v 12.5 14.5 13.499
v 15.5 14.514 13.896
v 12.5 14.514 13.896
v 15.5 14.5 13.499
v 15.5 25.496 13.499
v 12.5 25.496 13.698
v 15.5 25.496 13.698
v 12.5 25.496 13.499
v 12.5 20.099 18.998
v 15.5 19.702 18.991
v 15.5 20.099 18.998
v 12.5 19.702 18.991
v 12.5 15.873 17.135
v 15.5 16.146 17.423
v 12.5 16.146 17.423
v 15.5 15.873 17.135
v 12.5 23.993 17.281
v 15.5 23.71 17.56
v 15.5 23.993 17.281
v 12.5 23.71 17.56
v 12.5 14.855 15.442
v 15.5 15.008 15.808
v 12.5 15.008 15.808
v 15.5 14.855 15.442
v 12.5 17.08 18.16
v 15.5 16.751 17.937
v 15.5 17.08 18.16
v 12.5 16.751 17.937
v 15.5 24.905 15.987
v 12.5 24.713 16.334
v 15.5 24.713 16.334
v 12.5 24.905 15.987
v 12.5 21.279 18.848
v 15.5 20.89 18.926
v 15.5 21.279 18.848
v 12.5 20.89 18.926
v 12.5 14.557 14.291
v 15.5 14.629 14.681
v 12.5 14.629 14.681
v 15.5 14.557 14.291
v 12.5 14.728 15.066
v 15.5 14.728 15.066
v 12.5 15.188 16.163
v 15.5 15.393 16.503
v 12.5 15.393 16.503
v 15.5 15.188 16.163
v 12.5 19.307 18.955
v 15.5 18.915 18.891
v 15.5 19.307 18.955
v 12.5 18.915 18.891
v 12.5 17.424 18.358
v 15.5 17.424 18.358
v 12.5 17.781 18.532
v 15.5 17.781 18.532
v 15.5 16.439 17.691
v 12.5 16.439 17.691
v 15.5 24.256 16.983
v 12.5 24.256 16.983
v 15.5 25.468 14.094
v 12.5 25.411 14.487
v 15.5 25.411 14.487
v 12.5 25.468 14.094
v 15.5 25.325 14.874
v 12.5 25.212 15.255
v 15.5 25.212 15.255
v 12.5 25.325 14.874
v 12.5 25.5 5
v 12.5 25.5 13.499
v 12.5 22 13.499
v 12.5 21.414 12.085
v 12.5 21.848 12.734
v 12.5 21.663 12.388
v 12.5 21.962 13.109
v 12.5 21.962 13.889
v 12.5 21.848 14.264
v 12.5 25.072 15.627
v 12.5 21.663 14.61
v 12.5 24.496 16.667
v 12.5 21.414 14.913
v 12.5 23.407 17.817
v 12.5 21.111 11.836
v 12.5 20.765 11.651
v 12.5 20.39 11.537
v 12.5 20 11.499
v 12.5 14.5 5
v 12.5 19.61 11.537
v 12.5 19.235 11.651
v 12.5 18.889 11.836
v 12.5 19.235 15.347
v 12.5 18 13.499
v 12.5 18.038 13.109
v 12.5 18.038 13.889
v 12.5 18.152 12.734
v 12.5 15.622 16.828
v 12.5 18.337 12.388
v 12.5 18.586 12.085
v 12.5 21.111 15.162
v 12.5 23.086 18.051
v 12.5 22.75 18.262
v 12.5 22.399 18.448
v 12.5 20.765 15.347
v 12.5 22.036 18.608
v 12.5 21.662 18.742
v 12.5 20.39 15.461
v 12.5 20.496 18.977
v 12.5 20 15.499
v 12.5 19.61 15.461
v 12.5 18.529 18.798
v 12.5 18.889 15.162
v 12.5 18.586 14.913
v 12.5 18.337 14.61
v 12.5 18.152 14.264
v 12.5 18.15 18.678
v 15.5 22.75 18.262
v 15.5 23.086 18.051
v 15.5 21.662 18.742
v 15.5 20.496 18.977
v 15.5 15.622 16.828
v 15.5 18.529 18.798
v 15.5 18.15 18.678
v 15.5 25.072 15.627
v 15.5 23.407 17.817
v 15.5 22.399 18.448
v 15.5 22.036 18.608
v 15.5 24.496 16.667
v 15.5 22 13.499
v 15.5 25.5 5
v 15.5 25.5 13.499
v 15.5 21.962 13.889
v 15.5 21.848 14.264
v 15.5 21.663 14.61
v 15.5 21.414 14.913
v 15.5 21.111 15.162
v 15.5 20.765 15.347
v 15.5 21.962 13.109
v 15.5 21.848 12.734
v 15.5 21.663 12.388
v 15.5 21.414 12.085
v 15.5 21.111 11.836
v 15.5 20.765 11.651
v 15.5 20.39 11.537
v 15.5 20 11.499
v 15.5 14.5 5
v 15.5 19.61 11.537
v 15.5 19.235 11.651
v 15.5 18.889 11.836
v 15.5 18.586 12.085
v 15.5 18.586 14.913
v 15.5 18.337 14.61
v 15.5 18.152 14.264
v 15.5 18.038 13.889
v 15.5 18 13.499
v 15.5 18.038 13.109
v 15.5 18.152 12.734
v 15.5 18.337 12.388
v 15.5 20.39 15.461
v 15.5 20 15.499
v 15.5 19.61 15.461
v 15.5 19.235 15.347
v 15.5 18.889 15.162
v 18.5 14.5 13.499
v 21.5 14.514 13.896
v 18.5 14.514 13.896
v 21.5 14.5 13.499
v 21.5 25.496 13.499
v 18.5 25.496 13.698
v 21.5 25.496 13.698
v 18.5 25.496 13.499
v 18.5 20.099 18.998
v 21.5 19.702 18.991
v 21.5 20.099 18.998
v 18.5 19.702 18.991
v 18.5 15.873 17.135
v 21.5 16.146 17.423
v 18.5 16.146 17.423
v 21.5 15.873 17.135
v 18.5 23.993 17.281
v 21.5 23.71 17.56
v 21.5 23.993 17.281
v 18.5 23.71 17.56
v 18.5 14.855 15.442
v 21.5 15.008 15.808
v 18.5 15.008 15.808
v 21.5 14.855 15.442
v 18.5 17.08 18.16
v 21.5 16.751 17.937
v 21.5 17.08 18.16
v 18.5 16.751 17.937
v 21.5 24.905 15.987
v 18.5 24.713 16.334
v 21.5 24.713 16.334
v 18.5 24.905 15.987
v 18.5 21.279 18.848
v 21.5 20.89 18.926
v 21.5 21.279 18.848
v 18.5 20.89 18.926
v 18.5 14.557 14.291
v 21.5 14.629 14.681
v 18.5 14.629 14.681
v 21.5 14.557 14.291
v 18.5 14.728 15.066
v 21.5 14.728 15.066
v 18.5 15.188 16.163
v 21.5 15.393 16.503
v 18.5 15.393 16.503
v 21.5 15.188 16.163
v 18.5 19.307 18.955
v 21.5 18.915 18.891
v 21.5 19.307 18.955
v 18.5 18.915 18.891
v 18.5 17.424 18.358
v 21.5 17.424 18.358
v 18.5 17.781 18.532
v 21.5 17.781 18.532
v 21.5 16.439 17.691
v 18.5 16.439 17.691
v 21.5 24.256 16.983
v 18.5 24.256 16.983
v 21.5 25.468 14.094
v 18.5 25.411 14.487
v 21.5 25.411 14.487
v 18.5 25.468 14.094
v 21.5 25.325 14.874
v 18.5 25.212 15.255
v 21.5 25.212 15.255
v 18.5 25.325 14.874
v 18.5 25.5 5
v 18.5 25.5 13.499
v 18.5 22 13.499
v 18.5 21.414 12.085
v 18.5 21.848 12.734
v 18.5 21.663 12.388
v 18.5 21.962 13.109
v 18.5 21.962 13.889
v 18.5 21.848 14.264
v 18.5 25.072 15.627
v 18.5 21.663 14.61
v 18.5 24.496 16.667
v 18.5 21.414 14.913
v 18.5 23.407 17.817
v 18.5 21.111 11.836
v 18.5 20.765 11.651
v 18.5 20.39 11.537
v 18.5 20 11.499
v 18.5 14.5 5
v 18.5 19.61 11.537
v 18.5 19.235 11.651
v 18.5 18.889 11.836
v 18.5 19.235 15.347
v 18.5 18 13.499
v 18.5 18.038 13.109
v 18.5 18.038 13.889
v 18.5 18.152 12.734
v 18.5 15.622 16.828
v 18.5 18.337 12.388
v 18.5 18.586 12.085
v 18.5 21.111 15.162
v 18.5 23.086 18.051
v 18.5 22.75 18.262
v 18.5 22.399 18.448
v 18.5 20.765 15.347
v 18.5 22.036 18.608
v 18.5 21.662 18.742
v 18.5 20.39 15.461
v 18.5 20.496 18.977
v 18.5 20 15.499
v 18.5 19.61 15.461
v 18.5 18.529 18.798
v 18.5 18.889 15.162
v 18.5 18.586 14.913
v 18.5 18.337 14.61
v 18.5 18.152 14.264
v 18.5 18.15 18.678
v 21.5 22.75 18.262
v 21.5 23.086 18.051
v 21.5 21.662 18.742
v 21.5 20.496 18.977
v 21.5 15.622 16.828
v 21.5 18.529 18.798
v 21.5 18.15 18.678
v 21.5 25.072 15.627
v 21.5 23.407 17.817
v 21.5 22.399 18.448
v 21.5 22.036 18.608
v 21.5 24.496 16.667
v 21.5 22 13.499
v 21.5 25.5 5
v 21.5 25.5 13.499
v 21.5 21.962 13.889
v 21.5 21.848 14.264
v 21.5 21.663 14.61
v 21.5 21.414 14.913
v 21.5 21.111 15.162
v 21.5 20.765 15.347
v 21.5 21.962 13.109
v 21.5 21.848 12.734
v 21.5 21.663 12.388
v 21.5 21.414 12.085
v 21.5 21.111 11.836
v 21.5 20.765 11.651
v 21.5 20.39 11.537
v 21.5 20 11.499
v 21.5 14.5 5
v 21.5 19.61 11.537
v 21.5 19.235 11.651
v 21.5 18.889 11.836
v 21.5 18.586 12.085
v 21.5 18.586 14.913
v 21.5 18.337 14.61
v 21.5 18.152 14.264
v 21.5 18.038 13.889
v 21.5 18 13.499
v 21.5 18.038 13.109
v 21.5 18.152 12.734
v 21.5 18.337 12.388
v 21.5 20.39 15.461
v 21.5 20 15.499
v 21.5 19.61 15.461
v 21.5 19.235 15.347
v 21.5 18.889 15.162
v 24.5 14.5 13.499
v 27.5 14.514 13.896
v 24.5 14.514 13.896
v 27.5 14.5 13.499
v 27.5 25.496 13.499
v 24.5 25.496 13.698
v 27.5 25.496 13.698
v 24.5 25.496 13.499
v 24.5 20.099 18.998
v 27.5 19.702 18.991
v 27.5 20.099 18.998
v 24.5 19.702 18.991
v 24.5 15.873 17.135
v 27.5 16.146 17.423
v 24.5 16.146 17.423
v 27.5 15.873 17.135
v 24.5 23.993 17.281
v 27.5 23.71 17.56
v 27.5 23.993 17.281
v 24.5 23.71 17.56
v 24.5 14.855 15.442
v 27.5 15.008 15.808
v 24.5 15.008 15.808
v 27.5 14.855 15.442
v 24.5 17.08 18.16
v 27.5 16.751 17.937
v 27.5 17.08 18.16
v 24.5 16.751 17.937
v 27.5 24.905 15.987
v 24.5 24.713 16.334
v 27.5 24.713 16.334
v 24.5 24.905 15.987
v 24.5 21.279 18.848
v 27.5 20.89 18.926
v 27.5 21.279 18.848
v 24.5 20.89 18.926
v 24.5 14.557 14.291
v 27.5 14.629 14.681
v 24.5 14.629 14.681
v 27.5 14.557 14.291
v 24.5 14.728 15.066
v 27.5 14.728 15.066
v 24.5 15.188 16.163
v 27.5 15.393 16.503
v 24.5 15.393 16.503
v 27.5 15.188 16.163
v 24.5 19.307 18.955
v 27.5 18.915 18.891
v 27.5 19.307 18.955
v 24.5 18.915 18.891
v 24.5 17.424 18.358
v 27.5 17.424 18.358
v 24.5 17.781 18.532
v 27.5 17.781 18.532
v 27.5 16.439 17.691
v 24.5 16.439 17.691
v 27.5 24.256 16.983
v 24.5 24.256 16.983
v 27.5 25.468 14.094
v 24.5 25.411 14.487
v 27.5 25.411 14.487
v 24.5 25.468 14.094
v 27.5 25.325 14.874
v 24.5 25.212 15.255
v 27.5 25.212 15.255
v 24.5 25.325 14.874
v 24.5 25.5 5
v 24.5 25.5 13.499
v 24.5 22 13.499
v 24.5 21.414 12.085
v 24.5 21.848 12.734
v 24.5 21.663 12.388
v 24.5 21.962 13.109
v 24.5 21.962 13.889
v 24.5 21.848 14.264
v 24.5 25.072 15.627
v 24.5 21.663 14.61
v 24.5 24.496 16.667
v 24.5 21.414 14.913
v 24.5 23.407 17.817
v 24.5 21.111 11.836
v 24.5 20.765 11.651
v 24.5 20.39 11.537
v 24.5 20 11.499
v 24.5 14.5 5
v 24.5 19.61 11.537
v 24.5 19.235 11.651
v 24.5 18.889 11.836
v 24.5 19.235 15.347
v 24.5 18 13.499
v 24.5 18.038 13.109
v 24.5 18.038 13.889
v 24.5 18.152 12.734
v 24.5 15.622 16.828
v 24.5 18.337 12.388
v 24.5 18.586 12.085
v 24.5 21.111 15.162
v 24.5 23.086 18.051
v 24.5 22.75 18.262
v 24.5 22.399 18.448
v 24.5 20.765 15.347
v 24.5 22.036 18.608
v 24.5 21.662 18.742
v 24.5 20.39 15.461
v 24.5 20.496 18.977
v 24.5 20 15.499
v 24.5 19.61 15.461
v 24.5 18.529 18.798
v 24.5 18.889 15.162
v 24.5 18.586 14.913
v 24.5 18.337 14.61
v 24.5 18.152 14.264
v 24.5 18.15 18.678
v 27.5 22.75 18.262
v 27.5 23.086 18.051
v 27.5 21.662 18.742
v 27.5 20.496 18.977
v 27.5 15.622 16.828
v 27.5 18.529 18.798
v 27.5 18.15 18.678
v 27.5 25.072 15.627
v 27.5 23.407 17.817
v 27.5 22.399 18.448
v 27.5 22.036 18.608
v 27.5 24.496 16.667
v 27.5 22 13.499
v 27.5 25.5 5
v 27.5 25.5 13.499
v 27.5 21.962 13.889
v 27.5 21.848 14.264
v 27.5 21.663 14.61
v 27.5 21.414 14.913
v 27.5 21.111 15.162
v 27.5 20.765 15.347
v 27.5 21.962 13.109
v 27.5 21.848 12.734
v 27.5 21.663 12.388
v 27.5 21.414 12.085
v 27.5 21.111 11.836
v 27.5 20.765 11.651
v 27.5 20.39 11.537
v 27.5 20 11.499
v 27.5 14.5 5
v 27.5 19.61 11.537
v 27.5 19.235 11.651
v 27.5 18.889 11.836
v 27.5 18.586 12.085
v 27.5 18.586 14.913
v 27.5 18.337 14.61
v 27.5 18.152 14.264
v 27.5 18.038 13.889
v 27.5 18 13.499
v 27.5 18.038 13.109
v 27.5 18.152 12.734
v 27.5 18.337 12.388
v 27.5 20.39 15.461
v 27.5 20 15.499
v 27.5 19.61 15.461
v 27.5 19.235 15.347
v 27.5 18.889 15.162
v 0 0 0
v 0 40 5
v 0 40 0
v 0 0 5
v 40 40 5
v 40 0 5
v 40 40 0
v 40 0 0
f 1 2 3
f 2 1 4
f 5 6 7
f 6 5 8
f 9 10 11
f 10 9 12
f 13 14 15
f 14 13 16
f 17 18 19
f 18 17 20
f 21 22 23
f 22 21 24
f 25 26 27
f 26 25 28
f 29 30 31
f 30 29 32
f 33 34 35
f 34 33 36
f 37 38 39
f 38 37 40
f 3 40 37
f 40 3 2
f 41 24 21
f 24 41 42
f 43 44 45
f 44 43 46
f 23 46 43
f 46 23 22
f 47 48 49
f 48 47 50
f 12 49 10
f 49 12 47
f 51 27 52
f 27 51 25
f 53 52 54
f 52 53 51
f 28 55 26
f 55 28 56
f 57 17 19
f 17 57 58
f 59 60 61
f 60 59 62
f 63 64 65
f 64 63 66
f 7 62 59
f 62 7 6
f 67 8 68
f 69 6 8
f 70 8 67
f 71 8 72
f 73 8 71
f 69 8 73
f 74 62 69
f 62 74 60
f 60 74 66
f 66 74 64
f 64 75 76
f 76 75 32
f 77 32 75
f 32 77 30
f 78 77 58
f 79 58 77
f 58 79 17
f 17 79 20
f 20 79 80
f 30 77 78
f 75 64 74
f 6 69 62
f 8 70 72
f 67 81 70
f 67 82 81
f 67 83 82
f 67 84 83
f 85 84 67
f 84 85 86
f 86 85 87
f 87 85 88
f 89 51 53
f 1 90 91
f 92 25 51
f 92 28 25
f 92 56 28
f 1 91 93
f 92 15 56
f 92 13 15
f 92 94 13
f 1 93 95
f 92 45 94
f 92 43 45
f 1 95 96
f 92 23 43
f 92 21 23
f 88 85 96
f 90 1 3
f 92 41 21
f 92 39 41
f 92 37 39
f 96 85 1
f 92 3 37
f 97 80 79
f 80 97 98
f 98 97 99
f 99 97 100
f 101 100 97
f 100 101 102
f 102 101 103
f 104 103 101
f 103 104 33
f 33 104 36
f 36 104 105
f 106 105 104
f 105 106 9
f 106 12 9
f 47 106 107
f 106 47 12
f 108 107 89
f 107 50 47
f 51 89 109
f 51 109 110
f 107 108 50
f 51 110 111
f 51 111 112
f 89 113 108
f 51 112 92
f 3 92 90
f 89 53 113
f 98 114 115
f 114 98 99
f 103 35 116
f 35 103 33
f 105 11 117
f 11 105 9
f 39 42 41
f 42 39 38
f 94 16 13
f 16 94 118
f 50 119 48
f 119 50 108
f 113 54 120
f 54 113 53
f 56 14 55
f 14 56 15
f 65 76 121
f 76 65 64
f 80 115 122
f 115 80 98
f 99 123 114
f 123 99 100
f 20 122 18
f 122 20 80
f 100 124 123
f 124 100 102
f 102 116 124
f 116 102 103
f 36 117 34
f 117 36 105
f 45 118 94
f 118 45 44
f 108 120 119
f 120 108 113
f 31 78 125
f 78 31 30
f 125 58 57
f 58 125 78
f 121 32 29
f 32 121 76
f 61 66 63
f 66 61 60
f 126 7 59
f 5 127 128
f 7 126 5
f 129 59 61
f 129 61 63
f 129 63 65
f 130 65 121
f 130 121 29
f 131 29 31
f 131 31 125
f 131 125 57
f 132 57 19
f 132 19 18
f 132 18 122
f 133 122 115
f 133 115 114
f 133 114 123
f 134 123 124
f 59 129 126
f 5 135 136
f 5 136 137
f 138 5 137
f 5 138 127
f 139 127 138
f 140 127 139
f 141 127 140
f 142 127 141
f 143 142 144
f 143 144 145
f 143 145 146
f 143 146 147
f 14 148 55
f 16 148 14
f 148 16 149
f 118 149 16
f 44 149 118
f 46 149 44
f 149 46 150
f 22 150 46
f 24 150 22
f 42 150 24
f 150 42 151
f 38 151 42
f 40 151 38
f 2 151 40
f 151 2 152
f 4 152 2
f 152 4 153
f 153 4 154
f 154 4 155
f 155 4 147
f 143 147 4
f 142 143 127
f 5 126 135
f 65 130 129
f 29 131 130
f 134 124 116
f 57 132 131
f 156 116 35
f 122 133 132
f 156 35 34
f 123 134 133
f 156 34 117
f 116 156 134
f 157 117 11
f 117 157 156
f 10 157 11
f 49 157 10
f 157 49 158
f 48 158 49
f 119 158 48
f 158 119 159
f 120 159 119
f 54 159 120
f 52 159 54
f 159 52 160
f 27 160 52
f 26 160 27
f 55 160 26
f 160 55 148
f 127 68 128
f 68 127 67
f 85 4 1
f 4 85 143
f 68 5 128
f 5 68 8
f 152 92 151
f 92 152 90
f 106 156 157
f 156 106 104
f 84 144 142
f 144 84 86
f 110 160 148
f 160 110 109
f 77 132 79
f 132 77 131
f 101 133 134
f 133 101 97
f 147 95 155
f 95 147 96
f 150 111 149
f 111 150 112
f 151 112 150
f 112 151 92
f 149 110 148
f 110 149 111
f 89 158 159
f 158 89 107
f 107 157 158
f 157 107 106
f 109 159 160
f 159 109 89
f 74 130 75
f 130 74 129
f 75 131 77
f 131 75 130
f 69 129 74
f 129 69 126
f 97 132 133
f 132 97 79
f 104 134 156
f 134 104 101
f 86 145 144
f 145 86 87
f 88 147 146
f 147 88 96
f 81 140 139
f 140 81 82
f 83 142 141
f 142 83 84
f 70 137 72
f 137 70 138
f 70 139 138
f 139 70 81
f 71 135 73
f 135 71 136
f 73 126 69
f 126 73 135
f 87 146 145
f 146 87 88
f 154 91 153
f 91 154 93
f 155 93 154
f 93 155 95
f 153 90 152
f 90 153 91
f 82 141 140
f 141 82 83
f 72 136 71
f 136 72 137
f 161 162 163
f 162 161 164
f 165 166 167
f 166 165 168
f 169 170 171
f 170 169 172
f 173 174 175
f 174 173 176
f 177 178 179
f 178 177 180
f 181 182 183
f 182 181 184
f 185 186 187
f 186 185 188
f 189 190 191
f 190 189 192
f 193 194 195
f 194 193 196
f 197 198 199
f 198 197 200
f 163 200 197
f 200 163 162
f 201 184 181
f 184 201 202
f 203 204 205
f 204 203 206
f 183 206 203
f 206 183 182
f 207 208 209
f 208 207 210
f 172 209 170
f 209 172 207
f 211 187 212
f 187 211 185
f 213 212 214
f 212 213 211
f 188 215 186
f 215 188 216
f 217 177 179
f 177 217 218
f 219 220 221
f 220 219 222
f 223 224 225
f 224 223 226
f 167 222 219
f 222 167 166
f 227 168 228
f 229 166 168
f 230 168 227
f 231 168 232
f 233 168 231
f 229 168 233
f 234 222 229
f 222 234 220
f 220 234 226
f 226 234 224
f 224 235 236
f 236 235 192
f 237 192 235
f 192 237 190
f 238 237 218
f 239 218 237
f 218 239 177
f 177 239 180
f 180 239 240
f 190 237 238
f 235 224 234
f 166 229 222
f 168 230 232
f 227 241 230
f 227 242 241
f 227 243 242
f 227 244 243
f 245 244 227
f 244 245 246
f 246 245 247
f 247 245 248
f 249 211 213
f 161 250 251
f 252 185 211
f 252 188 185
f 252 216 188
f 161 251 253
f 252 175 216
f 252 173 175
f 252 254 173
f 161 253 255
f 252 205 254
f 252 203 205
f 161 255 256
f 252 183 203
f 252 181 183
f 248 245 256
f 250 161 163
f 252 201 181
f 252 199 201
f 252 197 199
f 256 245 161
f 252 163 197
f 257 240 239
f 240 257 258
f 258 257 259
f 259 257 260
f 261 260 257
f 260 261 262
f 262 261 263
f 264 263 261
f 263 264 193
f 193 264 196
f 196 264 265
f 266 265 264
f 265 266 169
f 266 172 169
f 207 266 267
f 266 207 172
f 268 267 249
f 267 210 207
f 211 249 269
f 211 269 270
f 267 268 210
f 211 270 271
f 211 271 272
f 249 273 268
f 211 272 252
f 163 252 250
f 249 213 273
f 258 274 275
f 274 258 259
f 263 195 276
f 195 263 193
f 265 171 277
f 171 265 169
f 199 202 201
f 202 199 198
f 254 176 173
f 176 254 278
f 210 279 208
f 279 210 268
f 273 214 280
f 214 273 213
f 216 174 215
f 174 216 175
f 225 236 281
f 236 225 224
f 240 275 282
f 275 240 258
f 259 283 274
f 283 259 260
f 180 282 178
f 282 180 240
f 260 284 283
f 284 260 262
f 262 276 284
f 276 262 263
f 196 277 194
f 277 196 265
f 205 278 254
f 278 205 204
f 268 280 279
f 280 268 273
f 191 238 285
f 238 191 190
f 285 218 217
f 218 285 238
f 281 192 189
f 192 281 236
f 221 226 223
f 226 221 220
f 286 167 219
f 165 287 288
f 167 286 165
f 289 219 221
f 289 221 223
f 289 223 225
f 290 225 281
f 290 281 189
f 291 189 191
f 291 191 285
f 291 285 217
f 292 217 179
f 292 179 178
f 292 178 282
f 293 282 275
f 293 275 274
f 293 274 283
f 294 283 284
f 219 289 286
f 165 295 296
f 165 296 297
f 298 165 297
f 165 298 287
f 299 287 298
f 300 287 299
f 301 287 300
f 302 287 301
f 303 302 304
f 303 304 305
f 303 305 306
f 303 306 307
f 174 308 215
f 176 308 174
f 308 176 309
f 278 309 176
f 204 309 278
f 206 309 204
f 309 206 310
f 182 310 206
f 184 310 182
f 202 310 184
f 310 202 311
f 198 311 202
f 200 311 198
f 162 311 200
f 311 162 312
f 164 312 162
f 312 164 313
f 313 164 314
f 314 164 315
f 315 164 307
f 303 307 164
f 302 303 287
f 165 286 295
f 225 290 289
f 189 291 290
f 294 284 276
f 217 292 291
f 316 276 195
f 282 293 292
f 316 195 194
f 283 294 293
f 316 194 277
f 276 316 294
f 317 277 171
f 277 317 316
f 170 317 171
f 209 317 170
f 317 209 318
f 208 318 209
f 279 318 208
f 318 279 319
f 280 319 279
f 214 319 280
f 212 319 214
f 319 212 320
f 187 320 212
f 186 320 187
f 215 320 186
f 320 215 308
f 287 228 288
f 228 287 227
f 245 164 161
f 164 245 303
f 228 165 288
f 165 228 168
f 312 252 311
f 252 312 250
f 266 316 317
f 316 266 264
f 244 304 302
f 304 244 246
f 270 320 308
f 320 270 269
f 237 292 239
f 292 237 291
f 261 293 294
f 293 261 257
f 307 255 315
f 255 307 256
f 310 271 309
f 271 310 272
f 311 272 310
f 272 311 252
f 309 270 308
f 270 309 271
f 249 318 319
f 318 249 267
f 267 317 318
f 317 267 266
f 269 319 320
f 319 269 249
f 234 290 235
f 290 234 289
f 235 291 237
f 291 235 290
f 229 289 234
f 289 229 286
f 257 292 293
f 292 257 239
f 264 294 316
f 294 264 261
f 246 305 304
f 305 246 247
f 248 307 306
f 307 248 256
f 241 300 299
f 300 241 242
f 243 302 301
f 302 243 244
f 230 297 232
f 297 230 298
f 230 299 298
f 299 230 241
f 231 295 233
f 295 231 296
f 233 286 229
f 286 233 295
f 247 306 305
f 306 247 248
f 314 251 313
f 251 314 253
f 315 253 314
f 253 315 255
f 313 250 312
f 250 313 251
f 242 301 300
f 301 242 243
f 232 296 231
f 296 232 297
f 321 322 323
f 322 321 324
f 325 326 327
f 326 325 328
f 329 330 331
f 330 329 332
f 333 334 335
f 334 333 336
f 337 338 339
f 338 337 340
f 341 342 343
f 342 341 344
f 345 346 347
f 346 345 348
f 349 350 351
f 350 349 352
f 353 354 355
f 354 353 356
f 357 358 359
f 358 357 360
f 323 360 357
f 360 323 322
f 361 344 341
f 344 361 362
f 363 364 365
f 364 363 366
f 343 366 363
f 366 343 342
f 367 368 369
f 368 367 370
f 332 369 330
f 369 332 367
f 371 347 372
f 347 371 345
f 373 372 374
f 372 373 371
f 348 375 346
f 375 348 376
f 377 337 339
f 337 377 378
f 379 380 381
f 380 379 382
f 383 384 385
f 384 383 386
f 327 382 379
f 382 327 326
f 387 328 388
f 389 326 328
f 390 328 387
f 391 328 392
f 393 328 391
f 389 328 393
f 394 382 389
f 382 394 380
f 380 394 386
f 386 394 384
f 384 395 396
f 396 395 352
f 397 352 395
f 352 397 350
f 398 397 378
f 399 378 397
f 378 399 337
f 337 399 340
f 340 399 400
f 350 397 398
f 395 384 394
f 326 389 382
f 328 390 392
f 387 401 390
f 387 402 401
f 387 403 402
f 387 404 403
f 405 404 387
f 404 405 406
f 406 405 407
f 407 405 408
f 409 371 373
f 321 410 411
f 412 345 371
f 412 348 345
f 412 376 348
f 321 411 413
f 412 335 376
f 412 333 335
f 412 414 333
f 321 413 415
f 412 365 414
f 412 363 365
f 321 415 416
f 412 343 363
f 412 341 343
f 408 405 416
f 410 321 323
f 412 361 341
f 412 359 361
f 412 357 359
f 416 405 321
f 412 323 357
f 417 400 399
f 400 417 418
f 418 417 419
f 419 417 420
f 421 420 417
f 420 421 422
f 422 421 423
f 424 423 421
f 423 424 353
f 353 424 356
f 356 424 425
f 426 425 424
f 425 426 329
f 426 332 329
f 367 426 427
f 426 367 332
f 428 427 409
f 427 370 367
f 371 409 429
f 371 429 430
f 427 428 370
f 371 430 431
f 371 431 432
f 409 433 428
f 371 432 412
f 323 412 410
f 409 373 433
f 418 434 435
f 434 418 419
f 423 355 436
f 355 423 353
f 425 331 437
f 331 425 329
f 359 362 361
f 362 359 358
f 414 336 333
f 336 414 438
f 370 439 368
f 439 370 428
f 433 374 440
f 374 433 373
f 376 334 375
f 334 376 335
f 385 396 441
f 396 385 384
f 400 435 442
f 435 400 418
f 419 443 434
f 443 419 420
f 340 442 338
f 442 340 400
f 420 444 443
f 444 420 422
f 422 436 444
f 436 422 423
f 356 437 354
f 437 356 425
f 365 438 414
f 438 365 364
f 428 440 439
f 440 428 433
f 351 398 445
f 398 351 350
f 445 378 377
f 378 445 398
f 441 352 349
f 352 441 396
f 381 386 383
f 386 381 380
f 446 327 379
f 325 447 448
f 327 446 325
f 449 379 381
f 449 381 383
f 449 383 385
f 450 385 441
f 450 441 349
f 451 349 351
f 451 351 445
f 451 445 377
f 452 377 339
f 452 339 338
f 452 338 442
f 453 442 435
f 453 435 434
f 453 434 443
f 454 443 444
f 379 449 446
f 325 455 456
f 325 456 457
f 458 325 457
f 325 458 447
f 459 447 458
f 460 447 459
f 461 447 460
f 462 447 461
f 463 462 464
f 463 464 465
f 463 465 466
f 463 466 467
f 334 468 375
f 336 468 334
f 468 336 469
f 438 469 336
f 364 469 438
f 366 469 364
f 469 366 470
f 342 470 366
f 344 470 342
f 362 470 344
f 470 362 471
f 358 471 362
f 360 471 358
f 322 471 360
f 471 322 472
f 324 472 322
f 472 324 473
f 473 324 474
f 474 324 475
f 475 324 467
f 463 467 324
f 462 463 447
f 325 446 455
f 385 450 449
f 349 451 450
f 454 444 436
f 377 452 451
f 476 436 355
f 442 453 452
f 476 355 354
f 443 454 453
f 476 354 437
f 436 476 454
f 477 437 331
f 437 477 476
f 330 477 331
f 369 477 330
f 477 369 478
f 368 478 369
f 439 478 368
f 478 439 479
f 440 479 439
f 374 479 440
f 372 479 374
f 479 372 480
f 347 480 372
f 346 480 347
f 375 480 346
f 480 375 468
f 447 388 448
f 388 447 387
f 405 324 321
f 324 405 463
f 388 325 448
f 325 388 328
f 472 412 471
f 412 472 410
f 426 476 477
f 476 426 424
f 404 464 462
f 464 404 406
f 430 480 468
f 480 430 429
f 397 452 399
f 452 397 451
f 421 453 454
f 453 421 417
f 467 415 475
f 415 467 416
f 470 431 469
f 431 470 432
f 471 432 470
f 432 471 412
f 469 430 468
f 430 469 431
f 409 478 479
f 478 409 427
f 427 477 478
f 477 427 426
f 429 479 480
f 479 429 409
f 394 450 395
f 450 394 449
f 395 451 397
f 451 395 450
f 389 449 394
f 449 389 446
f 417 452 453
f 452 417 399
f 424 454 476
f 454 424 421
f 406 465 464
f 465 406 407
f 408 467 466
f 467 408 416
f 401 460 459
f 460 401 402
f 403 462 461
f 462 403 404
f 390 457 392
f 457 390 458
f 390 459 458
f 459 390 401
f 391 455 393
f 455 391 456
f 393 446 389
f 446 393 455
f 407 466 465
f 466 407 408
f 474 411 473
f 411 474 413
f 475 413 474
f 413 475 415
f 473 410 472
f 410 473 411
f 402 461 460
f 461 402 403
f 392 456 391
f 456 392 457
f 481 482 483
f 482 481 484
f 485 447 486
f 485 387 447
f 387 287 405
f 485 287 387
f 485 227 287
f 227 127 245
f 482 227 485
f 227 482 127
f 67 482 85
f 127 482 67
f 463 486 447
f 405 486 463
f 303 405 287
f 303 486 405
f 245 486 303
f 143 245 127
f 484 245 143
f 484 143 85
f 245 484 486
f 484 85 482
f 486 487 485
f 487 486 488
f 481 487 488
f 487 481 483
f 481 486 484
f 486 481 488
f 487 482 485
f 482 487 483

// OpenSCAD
$fa = 1.0;
$fs = 0.4;

basePlateWidth = 40;
basePlateHeight = 5;
tineWidth = 11;
tineLength = 14;
tineHeight = 3;
screwSize = 4;

makeBasePlate();
makeTines();

module makeBasePlate() {
    cube([basePlateWidth, basePlateWidth, basePlateHeight]);
}

module makeTines() {
    for (i =[-1:1:1])
        
        translate([
            basePlateWidth / 2 + tineHeight / 2 + tineHeight * 2 * i,
            basePlateWidth / 2 + tineWidth / 2,
            basePlateHeight - 0.001])
        rotate([90,0,270])
        makeTine();
}

module makeTine() {
    difference() {
        union(){
            color("green")
            translate([tineWidth/2,tineLength-tineWidth/2,0])
            cylinder(r=tineWidth/2,h=tineHeight);
            cube([tineWidth, tineLength-tineWidth/2, tineHeight]);
        }
        color("blue")
        translate([tineWidth/2,tineLength-tineWidth/2,0])
        cylinder(d=screwSize, h=tineHeight);
    }
}
